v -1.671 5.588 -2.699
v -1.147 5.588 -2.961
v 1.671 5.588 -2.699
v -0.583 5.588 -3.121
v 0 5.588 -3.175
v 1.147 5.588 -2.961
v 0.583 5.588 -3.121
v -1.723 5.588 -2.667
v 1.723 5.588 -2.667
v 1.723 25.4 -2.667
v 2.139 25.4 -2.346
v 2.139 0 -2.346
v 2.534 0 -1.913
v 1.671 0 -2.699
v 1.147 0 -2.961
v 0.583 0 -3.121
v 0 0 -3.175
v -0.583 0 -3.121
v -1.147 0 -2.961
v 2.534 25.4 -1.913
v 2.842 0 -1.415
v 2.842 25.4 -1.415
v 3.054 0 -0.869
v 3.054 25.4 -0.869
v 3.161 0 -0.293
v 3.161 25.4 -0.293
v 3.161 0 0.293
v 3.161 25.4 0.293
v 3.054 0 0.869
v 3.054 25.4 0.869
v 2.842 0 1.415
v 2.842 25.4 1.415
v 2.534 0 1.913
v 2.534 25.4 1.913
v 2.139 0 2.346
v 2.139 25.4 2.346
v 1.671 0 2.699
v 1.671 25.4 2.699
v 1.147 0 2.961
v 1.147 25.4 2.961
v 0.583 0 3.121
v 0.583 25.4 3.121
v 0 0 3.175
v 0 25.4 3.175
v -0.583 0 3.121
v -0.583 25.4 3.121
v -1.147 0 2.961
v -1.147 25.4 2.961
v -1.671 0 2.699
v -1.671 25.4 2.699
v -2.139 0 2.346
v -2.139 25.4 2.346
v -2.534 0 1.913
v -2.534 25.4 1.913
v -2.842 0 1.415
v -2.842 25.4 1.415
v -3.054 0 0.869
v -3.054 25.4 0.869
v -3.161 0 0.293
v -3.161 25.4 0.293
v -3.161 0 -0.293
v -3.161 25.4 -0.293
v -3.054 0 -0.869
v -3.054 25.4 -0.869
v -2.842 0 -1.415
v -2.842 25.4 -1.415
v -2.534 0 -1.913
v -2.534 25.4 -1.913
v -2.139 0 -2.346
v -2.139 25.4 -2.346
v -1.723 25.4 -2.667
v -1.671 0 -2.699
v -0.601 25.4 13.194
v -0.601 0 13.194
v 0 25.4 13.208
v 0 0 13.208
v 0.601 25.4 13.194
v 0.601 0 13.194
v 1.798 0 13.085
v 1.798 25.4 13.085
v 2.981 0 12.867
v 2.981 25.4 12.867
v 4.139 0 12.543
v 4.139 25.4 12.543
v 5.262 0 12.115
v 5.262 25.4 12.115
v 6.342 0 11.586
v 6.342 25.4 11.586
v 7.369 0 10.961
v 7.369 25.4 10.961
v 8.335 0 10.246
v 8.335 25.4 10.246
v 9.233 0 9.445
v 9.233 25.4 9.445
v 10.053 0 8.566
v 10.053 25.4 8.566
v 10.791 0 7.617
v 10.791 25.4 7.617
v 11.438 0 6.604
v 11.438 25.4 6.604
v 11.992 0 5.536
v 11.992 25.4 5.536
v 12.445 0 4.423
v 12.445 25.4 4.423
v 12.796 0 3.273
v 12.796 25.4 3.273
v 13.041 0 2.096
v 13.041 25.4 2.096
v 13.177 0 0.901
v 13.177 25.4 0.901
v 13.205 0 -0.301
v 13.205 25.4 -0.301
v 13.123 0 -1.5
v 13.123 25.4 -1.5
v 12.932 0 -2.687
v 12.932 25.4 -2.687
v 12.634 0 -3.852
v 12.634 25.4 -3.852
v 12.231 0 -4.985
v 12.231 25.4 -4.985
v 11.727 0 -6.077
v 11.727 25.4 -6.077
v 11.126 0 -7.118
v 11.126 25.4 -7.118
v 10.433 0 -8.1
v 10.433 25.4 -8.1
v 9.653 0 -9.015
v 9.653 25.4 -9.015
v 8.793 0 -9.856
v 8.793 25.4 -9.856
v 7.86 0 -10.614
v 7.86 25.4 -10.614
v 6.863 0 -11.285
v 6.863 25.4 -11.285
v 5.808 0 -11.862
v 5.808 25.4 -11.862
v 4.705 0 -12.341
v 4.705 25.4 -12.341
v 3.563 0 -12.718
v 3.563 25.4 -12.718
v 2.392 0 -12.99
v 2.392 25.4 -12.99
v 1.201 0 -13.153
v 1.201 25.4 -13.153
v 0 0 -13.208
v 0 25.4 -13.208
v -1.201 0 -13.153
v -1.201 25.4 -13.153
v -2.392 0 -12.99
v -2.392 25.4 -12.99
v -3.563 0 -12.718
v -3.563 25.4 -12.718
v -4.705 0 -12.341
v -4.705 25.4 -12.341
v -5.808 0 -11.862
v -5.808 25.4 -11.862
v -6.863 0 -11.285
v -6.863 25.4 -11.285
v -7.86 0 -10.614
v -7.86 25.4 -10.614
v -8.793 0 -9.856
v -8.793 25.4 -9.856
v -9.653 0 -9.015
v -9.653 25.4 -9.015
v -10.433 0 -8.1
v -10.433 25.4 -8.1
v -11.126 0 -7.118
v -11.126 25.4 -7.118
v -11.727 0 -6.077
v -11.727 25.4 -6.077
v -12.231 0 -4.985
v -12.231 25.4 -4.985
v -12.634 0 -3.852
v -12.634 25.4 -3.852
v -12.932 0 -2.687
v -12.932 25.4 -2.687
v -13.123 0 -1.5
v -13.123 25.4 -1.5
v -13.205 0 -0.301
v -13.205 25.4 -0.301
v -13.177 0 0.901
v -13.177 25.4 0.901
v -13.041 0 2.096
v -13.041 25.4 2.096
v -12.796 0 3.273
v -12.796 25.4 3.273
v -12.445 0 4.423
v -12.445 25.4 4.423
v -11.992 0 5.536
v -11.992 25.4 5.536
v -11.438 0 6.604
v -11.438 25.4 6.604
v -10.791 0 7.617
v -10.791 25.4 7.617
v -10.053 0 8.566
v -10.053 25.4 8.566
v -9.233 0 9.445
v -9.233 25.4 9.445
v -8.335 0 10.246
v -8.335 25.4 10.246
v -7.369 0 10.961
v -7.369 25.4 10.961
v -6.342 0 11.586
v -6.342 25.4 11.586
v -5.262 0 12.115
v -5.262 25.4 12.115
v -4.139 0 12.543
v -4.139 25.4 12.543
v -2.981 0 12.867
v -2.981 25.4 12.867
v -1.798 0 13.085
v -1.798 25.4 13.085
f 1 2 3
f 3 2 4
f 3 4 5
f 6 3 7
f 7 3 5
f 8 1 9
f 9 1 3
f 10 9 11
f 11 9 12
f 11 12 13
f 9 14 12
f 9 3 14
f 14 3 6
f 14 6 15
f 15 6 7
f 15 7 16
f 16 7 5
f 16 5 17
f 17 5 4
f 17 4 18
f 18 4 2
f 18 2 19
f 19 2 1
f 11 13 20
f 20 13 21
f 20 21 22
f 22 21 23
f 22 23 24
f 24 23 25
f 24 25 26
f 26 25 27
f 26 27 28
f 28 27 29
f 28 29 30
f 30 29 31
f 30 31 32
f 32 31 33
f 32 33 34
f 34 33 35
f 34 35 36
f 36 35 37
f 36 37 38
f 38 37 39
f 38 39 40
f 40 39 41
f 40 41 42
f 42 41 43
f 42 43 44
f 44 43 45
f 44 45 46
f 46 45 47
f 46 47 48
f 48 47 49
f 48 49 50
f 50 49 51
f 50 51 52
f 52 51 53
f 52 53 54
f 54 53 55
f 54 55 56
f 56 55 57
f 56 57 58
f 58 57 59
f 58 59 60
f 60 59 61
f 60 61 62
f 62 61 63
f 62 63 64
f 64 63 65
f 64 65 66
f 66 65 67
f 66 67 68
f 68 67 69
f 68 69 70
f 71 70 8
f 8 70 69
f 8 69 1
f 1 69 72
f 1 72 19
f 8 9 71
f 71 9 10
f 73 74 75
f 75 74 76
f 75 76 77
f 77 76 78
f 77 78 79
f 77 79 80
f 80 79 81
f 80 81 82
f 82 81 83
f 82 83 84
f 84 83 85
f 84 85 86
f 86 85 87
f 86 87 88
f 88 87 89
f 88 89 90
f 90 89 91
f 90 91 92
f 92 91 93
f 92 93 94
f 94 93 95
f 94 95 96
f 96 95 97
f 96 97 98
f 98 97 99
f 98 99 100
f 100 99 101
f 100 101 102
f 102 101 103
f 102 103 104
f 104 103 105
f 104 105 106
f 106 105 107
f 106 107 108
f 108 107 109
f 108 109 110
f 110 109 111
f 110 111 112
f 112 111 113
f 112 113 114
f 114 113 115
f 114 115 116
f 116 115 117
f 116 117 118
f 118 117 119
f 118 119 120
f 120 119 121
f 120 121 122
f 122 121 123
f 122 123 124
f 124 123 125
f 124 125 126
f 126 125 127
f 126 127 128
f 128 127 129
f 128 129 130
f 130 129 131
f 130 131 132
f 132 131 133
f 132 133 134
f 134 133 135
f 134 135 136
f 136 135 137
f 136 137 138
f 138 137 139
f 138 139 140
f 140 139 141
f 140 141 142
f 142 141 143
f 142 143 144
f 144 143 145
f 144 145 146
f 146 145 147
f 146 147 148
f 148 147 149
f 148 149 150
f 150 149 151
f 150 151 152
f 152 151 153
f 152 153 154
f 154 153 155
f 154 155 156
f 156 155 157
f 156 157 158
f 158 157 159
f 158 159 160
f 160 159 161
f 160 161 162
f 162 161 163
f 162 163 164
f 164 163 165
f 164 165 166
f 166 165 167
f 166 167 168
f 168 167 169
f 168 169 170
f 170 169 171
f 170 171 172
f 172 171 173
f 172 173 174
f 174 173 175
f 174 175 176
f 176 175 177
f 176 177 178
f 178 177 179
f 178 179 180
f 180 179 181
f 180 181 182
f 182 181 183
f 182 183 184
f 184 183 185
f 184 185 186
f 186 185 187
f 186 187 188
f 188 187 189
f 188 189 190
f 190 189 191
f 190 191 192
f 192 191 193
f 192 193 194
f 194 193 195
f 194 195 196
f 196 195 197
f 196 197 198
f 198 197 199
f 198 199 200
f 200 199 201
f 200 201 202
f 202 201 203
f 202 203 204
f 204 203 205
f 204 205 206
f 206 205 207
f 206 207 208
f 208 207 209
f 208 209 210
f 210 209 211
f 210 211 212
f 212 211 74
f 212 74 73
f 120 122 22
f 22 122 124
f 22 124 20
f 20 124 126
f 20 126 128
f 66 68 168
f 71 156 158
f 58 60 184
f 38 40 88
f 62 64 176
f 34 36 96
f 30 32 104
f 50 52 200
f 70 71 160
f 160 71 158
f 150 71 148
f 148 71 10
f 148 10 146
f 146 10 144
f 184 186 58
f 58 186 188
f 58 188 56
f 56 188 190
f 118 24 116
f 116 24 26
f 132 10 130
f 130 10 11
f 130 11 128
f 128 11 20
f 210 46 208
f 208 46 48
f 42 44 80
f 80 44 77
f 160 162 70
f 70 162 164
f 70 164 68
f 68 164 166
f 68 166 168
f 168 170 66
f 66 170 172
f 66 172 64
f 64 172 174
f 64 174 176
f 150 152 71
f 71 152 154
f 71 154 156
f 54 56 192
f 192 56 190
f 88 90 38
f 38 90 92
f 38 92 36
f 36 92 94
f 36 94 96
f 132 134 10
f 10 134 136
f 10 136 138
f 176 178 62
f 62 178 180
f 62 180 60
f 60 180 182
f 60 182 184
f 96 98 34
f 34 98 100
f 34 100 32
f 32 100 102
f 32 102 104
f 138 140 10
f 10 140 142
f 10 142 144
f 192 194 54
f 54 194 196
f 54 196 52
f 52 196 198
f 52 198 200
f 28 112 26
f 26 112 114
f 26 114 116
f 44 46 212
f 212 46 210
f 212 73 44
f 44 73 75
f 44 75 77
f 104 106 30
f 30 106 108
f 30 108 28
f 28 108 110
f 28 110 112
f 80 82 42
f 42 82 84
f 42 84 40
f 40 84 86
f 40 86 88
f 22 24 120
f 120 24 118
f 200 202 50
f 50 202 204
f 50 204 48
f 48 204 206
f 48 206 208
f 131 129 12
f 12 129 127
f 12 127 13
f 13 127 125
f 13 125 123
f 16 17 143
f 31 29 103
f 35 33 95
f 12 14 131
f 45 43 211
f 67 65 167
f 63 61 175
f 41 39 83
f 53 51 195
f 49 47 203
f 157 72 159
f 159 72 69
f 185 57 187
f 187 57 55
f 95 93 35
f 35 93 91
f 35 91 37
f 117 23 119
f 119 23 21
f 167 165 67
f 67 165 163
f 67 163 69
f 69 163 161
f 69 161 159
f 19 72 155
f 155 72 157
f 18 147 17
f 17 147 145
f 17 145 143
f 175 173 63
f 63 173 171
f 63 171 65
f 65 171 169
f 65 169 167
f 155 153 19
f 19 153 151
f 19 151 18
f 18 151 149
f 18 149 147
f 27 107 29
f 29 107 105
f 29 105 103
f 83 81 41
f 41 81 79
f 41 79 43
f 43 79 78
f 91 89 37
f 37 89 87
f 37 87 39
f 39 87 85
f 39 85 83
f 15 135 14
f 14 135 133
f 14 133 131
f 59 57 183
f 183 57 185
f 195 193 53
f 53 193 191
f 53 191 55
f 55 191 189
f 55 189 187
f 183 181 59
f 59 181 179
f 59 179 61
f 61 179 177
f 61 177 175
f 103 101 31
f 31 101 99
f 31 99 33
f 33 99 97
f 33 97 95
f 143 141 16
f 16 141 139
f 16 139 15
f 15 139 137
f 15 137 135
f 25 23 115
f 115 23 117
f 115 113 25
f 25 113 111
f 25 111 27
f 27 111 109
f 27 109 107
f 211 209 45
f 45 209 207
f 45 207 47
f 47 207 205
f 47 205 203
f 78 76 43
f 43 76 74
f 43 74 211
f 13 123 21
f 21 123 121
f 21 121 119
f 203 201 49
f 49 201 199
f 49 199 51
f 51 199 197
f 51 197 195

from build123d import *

# Parameters (mm, degrees)
SKETCH1_R           = 13.208
BOSS_EXTRUDE4_DEPTH = 25.4
CUT_EXTRUDE3_DEPTH  = 32.528757159
CUT_EXTRUDE4_DEPTH  = 5.588


with BuildPart() as part:
    # Sketch1 → Boss-Extrude4 (new body)
    with BuildSketch(Plane(origin=(0, 0, 0), x_dir=(1, 0, 0), z_dir=(0, 1, 0))):
        Circle(SKETCH1_R)
    extrude(amount=BOSS_EXTRUDE4_DEPTH)

    # Sketch1<6> → Cut-Extrude3 (cut, through all)
    with BuildSketch(Plane(origin=(0, 0, 0), x_dir=(1, 0, 0), z_dir=(0, 1, 0))):
        with BuildLine():
            Line((1.722711816, 2.667), (0, 2.667))
            Line((0, 2.667), (-1.722711816, 2.667))
            ThreePointArc((-1.722711816, 2.667), (-1.51838977, -2.78838977), (3.175, 0))
            ThreePointArc((3.175, 0), (2.78838977, 1.51838977), (1.722711816, 2.667))
        make_face()
    extrude(amount=CUT_EXTRUDE3_DEPTH, mode=Mode.SUBTRACT)

    # Sketch1<7> → Cut-Extrude4 (cut)
    with BuildSketch(Plane(origin=(0, 0, 0), x_dir=(1, 0, 0), z_dir=(0, 1, 0))):
        with BuildLine():
            Line((-1.722711816, 2.667), (0, 2.667))
            Line((0, 2.667), (1.722711816, 2.667))
            ThreePointArc((1.722711816, 2.667), (0, 3.175), (-1.722711816, 2.667))
        make_face()
    extrude(amount=CUT_EXTRUDE4_DEPTH, mode=Mode.SUBTRACT)


solid = part.part
